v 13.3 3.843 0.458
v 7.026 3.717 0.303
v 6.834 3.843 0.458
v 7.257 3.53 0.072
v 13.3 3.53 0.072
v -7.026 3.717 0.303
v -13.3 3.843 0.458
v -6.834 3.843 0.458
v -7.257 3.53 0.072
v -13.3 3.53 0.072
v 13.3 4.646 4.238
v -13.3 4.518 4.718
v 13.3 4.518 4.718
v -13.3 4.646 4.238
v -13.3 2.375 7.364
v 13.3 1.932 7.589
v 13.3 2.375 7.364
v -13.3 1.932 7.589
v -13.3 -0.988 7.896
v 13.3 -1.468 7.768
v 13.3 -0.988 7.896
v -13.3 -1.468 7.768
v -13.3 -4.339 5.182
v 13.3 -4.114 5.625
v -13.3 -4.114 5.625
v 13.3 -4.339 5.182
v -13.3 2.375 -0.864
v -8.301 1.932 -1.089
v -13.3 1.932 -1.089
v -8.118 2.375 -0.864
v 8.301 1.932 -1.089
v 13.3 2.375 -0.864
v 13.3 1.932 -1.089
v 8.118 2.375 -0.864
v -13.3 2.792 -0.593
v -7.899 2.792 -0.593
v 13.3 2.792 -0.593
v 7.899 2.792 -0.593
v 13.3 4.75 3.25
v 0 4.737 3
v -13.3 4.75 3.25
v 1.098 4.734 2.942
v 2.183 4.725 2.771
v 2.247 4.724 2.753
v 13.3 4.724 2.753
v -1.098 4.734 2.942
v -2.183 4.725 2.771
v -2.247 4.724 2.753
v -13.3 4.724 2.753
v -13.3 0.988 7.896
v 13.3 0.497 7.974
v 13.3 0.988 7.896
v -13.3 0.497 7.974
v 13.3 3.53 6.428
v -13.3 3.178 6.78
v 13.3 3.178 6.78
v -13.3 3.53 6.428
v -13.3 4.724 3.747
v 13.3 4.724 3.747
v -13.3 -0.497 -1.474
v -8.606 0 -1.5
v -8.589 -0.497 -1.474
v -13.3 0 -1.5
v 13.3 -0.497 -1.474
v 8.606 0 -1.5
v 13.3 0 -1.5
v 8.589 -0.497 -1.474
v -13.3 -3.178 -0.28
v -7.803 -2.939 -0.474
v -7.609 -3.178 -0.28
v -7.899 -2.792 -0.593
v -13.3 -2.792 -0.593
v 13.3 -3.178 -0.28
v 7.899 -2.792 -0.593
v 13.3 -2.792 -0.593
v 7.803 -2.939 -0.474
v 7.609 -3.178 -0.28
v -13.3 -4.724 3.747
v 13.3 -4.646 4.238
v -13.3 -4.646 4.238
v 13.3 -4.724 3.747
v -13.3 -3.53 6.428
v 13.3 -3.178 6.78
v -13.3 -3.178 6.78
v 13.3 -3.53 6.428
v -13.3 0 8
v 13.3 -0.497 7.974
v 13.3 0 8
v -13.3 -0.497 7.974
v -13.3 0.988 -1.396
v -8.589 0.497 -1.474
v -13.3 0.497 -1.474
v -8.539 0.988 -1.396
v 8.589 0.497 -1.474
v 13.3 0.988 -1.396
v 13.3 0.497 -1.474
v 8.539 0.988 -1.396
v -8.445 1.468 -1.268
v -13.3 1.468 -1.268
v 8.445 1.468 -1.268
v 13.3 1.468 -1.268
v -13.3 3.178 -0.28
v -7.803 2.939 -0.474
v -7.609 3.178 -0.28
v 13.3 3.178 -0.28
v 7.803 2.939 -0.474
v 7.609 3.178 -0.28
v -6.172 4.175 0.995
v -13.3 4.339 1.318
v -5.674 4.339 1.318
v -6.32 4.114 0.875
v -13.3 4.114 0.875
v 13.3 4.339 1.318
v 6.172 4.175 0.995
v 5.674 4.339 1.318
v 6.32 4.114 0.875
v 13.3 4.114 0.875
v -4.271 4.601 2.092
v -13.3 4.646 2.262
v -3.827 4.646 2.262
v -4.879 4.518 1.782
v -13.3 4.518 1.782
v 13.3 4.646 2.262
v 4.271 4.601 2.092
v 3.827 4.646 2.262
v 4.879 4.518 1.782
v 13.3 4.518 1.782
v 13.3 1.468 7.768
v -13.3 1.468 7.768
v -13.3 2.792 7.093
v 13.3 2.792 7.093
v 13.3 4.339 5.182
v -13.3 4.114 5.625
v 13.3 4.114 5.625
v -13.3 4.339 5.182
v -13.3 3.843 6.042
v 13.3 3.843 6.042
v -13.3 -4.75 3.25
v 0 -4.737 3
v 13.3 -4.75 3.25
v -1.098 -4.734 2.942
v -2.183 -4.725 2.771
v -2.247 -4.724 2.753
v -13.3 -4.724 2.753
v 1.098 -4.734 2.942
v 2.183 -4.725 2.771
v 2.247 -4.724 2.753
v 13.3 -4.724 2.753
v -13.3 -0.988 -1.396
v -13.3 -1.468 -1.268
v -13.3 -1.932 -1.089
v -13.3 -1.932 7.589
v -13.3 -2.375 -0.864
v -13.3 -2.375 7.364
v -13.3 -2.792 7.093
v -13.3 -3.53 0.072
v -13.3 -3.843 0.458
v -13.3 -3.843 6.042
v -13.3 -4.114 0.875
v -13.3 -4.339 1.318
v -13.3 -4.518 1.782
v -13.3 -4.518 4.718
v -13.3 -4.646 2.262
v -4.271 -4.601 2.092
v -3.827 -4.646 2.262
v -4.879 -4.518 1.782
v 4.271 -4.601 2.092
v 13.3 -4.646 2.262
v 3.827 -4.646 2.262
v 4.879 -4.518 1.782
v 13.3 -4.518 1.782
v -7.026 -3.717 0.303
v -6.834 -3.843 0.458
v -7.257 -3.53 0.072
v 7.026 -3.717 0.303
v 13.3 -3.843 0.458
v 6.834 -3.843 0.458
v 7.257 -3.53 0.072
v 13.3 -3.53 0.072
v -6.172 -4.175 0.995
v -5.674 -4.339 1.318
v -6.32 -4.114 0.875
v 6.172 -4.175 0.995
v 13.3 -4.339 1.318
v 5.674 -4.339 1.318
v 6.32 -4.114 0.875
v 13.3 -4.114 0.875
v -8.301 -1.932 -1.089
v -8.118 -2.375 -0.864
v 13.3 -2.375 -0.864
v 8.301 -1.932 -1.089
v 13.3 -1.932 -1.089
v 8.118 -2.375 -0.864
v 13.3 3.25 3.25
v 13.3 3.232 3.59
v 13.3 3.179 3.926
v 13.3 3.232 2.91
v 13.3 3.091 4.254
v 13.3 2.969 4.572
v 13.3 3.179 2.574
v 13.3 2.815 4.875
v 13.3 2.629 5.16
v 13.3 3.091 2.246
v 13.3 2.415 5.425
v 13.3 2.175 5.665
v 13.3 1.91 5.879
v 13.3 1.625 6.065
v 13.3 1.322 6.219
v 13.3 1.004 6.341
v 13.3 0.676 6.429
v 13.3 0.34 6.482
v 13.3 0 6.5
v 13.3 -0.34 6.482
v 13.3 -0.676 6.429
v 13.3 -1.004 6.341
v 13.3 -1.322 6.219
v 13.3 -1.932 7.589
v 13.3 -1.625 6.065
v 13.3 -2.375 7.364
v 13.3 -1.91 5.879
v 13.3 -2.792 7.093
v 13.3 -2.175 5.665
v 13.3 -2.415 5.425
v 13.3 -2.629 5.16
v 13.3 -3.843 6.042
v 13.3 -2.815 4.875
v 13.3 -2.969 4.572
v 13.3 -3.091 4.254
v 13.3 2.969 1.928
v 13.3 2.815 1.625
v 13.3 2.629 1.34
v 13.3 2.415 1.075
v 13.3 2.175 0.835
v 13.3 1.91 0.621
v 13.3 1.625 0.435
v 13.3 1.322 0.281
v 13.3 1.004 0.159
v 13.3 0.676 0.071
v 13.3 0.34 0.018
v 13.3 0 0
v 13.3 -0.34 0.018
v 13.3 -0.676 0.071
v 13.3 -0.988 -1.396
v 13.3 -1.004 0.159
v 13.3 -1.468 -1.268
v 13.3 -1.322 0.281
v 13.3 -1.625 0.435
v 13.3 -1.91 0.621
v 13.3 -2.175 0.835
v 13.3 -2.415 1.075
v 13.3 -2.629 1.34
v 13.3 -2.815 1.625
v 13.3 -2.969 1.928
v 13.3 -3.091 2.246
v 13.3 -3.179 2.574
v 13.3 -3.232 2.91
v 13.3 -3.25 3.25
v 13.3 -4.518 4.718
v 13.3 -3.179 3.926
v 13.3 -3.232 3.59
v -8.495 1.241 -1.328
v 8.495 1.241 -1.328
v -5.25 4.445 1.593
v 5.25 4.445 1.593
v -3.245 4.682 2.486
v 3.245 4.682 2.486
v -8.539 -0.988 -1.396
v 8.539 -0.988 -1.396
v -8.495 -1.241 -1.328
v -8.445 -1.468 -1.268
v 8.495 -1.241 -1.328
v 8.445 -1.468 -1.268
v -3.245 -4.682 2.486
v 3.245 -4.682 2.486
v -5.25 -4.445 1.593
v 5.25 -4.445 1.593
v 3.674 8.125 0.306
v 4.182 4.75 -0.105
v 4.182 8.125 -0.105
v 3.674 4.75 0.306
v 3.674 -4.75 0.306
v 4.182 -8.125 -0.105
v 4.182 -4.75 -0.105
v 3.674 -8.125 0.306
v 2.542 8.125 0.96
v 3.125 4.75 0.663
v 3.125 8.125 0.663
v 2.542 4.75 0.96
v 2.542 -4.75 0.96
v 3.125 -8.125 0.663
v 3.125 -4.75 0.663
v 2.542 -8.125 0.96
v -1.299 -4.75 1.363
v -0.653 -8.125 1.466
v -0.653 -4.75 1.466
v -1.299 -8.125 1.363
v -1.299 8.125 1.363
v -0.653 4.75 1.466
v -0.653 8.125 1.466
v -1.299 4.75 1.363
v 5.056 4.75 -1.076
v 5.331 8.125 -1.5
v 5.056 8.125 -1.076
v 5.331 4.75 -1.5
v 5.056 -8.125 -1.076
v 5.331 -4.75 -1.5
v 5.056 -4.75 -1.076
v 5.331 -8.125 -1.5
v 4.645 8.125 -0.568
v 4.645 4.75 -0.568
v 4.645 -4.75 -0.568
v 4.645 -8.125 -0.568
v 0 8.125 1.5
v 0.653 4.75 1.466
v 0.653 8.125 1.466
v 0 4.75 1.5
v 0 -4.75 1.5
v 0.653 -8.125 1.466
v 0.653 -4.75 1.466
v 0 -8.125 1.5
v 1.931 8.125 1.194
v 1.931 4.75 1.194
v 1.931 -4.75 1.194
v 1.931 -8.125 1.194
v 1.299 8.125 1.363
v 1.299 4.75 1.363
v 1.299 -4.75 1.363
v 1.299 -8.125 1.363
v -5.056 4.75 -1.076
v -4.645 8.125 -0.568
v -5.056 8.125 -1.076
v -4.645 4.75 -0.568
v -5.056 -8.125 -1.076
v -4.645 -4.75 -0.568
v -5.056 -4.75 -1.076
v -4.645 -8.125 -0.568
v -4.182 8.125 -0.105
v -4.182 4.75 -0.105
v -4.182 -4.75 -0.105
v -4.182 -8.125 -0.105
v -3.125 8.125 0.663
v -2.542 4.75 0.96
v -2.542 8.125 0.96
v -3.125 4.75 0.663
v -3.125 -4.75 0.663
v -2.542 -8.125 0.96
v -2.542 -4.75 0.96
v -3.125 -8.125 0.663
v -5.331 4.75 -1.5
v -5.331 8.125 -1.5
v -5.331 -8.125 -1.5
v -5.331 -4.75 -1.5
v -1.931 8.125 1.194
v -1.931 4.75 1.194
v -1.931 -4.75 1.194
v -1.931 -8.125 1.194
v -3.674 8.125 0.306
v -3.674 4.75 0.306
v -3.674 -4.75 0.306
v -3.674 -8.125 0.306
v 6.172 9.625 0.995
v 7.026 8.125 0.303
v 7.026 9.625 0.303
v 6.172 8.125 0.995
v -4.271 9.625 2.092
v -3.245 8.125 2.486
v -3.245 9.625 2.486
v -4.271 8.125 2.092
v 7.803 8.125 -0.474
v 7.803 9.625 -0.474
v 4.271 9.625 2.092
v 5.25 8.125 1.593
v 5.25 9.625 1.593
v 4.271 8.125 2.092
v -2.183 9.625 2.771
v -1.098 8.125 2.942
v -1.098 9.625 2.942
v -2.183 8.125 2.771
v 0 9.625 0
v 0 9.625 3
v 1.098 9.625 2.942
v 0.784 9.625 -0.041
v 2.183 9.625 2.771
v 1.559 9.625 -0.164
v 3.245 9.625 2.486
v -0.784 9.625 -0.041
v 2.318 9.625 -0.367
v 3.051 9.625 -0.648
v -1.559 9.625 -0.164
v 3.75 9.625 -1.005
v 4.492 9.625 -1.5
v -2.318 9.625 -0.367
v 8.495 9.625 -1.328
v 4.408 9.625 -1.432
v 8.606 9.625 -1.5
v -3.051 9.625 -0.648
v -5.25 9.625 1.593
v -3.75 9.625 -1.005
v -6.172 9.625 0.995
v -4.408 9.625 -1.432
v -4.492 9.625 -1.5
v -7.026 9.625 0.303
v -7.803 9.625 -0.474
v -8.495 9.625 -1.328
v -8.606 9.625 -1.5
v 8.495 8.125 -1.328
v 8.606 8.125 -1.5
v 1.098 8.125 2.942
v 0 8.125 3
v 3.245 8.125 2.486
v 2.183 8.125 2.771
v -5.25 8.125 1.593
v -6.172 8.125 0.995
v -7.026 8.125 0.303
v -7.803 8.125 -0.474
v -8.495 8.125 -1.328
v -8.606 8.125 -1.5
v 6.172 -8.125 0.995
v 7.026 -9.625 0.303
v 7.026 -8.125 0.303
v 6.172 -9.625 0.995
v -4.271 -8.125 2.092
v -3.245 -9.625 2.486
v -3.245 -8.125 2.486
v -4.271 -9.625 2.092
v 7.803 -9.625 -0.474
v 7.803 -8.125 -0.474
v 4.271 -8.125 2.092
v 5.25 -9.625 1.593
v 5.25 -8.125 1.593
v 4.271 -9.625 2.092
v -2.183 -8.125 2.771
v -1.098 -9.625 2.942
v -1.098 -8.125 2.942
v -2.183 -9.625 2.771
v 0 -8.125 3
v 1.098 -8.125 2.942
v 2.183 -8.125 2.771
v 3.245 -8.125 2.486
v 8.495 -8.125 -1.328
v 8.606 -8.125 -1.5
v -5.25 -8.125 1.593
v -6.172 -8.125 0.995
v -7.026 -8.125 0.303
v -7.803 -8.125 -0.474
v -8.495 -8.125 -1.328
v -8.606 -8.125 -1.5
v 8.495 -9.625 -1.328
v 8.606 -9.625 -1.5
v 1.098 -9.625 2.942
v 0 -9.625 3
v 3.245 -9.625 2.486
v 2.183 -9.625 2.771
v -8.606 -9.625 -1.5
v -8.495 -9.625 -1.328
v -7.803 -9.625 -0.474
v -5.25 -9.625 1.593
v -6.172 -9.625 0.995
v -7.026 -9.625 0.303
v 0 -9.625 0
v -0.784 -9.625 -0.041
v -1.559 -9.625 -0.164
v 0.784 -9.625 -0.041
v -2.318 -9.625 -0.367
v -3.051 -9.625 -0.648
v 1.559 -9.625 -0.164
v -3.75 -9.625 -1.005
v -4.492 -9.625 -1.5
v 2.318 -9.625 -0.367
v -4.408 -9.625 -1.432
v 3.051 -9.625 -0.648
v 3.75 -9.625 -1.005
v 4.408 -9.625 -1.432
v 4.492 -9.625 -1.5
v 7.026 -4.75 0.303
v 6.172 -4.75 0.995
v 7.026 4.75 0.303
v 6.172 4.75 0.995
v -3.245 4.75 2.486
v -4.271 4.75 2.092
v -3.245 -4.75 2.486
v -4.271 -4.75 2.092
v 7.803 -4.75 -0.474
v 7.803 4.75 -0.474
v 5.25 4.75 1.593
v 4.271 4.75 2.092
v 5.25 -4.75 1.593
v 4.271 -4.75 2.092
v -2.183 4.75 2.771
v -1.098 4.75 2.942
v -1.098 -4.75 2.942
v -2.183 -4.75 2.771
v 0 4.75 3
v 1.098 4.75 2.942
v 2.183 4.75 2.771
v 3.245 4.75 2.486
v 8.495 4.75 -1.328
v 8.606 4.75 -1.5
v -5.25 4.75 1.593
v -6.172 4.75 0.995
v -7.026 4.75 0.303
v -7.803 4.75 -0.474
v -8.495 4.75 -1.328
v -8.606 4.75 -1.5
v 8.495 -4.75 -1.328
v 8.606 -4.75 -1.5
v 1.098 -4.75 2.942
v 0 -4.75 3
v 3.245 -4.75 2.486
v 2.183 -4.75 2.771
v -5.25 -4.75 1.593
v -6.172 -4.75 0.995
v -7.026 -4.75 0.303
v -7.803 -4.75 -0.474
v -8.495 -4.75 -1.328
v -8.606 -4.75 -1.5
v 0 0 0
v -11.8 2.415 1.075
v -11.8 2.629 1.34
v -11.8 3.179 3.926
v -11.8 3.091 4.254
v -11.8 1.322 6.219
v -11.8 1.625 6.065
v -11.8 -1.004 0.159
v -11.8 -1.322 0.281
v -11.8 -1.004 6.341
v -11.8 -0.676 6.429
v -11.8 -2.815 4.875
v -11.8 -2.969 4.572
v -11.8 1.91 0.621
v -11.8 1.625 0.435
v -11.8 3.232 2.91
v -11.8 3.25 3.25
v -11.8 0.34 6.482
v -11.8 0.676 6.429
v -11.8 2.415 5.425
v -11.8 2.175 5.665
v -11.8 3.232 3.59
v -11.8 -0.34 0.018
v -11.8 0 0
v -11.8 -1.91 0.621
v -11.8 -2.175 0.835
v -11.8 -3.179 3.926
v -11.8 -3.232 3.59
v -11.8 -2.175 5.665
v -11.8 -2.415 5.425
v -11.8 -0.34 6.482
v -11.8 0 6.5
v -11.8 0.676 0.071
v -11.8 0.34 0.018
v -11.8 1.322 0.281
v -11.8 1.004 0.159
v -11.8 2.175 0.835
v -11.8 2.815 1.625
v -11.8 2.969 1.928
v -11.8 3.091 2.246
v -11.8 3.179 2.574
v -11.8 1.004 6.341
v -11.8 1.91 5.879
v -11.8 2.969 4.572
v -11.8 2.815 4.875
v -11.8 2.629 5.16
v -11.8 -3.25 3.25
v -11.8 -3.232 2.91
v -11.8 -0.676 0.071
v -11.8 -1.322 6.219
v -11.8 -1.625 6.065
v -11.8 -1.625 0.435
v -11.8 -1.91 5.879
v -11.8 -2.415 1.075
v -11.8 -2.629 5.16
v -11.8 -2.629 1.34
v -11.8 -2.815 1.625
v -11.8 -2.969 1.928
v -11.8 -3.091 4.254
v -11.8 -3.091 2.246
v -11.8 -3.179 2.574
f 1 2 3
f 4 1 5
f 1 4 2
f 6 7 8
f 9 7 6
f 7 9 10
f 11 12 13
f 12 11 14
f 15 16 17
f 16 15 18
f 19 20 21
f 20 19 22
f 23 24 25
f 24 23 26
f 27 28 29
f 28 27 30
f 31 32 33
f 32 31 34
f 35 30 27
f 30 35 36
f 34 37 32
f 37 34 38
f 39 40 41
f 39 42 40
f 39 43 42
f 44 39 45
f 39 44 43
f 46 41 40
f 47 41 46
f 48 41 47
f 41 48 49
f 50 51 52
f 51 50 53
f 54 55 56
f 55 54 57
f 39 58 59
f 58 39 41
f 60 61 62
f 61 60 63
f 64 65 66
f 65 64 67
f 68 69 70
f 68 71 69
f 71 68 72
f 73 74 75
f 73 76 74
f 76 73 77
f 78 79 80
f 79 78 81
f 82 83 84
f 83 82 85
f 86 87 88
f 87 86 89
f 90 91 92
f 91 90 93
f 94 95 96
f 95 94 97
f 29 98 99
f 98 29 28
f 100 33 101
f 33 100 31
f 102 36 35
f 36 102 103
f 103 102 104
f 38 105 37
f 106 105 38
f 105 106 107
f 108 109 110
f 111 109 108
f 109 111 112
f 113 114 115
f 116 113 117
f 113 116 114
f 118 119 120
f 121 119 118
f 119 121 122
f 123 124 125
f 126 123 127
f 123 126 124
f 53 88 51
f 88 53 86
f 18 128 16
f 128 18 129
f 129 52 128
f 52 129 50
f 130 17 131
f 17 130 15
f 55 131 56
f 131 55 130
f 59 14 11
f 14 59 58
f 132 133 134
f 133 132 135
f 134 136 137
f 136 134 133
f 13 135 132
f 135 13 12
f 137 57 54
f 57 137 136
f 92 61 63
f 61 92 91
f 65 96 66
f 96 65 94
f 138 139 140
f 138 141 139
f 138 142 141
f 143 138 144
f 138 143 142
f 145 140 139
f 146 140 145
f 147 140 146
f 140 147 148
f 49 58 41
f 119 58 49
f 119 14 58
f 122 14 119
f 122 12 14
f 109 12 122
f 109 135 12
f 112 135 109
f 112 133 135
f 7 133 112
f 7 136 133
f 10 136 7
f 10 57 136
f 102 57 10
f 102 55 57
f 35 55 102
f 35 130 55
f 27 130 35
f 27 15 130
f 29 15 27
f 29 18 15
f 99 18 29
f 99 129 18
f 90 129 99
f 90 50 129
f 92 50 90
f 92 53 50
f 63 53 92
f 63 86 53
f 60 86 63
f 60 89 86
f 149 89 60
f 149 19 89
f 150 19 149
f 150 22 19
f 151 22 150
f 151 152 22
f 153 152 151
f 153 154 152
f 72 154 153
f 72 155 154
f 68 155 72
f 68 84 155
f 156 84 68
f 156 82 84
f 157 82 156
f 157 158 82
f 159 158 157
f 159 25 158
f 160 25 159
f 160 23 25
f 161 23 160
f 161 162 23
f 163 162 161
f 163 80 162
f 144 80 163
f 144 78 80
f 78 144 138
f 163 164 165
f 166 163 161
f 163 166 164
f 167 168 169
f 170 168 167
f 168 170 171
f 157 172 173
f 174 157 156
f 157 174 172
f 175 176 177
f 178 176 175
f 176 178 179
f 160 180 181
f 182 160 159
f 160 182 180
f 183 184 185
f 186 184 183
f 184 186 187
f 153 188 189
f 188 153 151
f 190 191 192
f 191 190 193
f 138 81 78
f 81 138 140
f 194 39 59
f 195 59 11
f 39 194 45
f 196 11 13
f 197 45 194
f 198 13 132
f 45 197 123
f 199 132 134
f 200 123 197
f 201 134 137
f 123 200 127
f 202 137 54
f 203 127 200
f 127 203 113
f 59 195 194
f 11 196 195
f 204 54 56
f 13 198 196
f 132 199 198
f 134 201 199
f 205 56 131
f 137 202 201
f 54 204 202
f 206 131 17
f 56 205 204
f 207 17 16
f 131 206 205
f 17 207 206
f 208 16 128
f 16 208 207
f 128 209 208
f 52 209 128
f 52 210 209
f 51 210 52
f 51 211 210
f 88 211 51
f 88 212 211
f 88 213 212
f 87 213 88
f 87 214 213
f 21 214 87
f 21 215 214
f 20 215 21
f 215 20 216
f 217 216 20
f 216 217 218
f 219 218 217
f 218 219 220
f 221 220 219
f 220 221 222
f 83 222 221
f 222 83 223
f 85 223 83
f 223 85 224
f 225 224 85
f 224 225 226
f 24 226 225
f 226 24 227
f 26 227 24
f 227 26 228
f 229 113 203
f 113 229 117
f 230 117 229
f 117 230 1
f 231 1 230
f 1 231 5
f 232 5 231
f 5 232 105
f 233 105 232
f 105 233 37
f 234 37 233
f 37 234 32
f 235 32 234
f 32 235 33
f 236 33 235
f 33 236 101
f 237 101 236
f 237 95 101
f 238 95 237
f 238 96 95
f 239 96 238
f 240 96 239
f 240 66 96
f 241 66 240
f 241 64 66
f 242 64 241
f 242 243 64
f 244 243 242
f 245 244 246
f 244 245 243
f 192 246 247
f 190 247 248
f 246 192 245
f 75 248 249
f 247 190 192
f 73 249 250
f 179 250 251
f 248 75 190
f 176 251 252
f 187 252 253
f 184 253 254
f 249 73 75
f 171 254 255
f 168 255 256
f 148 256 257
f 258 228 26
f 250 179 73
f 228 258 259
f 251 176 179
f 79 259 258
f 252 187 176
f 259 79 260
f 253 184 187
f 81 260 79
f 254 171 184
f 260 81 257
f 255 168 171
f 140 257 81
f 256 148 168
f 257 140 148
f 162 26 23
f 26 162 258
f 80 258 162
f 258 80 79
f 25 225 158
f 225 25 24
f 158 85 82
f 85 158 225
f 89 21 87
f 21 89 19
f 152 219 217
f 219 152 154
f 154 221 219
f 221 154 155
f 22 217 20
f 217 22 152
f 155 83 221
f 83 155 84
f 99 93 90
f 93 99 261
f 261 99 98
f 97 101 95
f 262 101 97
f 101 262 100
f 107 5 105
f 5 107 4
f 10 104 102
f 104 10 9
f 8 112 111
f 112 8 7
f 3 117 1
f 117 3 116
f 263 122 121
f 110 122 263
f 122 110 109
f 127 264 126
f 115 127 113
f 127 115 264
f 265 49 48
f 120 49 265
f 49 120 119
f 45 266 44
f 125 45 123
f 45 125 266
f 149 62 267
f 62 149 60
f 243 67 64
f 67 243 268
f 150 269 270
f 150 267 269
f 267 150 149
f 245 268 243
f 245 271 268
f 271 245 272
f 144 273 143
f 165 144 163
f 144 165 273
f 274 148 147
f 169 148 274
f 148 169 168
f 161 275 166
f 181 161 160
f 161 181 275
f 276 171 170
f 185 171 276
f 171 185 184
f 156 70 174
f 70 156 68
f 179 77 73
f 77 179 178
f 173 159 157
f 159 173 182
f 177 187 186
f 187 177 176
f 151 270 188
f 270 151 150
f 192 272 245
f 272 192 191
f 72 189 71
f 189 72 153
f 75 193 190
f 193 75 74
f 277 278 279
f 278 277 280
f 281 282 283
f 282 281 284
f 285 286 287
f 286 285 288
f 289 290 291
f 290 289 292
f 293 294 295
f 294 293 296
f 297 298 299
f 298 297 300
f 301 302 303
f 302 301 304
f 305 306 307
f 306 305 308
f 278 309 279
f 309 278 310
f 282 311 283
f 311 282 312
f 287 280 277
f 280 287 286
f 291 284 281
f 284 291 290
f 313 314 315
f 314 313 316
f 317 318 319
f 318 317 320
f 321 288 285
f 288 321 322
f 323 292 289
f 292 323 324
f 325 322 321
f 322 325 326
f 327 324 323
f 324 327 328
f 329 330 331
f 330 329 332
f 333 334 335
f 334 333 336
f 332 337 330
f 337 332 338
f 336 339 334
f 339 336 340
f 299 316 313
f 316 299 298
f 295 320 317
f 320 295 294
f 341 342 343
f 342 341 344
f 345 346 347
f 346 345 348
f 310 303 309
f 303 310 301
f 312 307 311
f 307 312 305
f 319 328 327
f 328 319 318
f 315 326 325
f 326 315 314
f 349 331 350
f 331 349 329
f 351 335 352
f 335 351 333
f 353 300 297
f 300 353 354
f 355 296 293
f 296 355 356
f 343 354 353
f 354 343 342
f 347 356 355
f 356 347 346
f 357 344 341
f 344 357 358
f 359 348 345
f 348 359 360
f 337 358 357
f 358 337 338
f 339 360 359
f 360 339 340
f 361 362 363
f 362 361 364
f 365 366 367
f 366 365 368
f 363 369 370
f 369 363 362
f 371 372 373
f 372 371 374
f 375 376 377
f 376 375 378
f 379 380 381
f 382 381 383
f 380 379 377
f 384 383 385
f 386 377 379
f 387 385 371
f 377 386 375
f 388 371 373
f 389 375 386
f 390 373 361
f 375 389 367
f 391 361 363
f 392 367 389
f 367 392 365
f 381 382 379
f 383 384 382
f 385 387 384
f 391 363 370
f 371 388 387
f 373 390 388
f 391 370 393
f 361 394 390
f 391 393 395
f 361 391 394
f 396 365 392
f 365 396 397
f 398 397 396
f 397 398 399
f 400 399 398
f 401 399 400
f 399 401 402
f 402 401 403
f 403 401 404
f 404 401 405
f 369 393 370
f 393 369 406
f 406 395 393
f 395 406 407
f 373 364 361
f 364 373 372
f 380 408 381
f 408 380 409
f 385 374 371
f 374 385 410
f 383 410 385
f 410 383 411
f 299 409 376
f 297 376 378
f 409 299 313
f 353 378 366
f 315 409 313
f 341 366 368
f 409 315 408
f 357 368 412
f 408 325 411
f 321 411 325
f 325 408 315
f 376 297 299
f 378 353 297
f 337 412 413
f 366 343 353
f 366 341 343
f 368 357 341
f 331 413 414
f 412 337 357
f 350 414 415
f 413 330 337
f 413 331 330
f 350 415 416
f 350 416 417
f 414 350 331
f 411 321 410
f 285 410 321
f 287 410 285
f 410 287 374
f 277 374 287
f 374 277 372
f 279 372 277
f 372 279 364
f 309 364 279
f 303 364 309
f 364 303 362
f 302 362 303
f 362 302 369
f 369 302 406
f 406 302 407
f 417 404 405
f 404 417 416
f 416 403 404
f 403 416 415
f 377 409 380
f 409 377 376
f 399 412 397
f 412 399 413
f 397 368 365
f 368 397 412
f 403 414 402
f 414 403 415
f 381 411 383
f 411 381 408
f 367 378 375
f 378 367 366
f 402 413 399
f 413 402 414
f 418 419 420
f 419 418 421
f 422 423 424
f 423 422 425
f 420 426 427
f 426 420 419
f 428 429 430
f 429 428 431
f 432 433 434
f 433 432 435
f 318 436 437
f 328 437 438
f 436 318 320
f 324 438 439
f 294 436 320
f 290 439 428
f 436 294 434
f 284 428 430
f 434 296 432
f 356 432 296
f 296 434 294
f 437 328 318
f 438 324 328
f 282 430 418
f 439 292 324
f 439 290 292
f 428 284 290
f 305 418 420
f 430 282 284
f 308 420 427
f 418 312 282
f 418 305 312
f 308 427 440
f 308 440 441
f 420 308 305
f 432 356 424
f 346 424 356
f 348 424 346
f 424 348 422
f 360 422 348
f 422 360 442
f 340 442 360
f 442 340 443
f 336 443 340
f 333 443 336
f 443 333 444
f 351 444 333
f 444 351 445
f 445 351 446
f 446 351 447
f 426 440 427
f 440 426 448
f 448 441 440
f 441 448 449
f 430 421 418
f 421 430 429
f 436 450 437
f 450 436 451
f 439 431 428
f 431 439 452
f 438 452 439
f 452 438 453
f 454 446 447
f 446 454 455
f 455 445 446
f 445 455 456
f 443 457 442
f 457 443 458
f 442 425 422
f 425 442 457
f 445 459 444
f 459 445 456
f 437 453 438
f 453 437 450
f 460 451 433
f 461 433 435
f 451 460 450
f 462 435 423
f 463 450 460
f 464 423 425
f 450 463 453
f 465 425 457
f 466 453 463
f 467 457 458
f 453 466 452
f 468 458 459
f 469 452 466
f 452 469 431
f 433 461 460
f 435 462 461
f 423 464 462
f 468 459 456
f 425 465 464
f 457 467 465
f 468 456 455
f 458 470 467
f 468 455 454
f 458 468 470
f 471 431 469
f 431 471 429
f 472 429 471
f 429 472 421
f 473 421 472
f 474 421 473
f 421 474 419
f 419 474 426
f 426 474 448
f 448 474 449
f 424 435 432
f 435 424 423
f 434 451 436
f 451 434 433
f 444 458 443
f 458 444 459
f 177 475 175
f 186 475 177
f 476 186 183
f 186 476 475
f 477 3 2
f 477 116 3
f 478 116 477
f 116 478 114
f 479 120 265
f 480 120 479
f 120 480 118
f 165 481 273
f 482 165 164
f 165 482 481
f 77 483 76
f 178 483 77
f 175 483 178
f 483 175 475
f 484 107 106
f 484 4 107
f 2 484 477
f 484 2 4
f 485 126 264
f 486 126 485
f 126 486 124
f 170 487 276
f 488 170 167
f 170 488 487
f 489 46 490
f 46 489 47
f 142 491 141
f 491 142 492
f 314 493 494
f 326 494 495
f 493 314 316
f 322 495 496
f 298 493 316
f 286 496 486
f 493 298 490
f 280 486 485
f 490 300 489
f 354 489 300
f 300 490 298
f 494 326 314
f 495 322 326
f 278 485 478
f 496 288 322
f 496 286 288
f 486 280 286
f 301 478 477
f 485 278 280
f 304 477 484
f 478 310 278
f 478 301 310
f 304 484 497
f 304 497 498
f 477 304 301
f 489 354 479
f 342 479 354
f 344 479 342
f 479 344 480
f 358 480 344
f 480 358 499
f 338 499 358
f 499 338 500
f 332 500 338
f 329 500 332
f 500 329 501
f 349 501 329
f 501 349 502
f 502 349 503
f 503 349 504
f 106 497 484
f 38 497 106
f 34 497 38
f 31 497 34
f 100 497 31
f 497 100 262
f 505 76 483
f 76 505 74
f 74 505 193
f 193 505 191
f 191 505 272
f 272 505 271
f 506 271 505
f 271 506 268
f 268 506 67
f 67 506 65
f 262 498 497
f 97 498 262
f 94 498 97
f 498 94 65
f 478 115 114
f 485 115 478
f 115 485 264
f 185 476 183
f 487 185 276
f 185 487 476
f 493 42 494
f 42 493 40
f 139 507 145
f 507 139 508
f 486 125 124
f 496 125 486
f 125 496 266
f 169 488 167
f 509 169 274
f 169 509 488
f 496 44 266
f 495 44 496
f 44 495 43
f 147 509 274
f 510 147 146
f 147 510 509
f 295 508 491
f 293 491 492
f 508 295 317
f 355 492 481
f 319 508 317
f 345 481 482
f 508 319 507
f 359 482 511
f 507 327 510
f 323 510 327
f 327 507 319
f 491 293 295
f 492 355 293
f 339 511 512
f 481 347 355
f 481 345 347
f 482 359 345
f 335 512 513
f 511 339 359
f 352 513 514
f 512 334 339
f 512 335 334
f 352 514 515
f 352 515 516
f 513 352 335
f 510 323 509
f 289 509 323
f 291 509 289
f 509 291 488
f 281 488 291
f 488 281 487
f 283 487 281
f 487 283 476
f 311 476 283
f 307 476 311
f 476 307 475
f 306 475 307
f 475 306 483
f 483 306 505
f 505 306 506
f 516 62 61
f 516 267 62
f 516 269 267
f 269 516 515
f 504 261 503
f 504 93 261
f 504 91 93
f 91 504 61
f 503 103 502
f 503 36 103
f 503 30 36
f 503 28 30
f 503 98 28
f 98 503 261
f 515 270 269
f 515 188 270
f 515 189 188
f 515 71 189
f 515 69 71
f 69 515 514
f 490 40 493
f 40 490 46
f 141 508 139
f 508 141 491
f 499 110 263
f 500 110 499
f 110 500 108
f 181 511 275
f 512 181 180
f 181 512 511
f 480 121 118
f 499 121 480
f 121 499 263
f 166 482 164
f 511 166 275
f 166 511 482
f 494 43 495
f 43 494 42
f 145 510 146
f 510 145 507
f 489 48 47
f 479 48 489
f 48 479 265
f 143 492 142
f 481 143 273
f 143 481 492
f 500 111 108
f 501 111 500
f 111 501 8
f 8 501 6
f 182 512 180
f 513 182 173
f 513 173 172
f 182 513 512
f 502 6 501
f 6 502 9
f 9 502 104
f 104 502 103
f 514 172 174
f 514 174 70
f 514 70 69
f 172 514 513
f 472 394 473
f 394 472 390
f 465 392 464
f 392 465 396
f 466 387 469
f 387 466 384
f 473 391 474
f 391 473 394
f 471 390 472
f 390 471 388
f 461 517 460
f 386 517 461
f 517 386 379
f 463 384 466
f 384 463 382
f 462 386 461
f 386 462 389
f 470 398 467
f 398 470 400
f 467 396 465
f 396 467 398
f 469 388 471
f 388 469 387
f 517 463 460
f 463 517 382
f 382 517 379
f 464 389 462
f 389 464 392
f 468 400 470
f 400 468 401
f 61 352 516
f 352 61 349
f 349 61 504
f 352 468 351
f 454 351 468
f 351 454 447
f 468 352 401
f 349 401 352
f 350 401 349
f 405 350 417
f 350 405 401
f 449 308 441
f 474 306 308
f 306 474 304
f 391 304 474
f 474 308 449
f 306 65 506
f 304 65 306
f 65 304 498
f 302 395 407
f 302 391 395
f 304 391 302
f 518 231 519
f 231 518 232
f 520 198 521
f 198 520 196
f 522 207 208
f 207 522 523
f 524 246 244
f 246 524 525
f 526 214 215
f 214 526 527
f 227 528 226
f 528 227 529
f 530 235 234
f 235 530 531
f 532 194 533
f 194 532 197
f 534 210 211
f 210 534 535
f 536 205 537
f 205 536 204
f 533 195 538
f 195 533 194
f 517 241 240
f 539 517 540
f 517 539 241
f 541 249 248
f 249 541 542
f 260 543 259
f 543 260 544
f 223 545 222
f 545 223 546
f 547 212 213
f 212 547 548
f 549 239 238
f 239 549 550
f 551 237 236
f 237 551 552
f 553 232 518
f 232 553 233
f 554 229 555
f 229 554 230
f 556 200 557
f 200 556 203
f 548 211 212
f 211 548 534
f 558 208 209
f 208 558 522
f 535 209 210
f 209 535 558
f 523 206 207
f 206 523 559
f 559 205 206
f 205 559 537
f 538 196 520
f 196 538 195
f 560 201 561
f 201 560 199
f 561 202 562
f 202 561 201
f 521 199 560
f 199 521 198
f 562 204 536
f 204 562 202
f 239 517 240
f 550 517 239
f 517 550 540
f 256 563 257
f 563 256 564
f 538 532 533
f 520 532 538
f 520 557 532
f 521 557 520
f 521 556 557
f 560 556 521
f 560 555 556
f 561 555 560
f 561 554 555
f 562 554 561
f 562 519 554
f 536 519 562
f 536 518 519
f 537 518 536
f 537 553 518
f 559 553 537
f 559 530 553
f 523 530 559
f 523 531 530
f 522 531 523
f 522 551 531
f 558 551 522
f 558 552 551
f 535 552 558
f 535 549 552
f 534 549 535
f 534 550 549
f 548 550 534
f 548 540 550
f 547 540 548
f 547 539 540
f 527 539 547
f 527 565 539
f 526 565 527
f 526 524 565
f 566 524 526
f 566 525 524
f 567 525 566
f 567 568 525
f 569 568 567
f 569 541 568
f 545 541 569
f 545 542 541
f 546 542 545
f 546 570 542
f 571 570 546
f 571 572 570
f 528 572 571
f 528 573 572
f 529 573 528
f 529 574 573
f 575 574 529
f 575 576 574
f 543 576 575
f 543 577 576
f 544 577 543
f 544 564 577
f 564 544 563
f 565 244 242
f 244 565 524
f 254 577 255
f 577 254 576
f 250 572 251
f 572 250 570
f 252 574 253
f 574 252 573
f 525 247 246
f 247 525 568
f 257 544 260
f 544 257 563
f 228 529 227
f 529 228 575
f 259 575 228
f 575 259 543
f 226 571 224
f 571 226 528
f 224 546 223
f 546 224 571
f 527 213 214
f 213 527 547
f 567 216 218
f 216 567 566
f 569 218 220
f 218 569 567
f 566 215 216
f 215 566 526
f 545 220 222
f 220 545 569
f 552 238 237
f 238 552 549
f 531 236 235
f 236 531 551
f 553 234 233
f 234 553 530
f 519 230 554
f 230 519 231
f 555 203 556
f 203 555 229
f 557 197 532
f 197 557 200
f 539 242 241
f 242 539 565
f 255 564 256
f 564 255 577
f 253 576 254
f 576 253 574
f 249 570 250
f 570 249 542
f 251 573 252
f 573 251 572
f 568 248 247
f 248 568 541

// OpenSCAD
dia = 15; //beam diameter
dia_gap = 0.5; //gap between two halves
screw = 3.8; //screw hole size
screw_to_beam = 0.5; //distance between beam and screw
wall = 1.5; //wall thickness around screw hole

hex_dia = 7.2; //hex bold counter sunk diameter M3=6.4 (set to 0 to ignore)
hex_depth = 1.5; //hex bold counter sunk depth M3=2.0

r = dia/2;
r_screw = screw/2;

land_dia = 6.5;

$fn=60;

w = dia + 2 * (screw_to_beam + screw + wall); //width
d = screw + 2*wall; //depth
h = r + wall; //height


land_r = land_dia/2;
land_or = land_r+wall;

gap = 5;

tiewrap = 2*(gap+wall);

r_tie = r/1.2;

difference() {
  union() {
    //land
    translate([0,0,+land_r]) rotate([0,90,0])cylinder(h=w,r=land_or,center=true);
 
    //tiewrap
    translate([0,0,-r_tie+wall]) rotate([90,0,0]) cylinder(h=land_or+tiewrap,r=r_tie,center=true);

    translate([0,+(land_or+tiewrap)/2,-r]) rotate([90,0,0]) cylinder(h=wall,r=r+2*wall,center=true);
    translate([0,-(land_or+tiewrap)/2,-r]) rotate([90,0,0]) cylinder(h=wall,r=r+2*wall,center=true);

    translate([0,0/2,-r]) rotate([90,0,0]) cylinder(h=land_or*2,r=r+2*wall,center=true);
  }
  //beam
  translate([0,0,-r]) rotate([90,0,0]) cylinder(h=100,r=r,center=true);
  
  translate([0,0,-50-wall]) cube([100,100,100],center=true);
  
  //land
  translate([wall,0,+land_r]) rotate([0,90,0])cylinder(h=w,r=land_r,center=true);
}



/*
rotate([-90,0,0])
difference() {
  union() {
    translate([0,0,(h-dia_gap/2)/2]) cube([w,d,h-dia_gap/2],center=true);

    //land
    translate([0,d/2+land_or,-land_or+2*wall]) rotate([0,90,0])cylinder(h=w,r=land_or,center=true);
    translate([0,d/2+land_or,(h-dia_gap/2-land_r+wall)/2]) cube([w,2*land_or,h-dia_gap/2+land_r-wall],center=true);
  }
  //beam
  translate([0,0,h]) rotate([90,0,0]) cylinder(h=100,r=r,center=true);

  //screws
  screw_offset = r + r_screw + screw_to_beam;
  translate([+screw_offset,0,0]) cylinder(h=100,r=screw/2,center=true);
  translate([-screw_offset,0,0]) cylinder(h=100,r=screw/2,center=true);
  
  //counter sunk hex
  translate([+screw_offset,0,-50+hex_depth]) cylinder(h=100,r=hex_dia/2,center=true, $fn=6);
  translate([-screw_offset,0,-50+hex_depth]) cylinder(h=100,r=hex_dia/2,center=true, $fn=6);
  
  //land
  translate([wall,d/2+land_or,-land_r+wall]) rotate([0,90,0])cylinder(h=w,r=land_r,center=true);
}
*/
